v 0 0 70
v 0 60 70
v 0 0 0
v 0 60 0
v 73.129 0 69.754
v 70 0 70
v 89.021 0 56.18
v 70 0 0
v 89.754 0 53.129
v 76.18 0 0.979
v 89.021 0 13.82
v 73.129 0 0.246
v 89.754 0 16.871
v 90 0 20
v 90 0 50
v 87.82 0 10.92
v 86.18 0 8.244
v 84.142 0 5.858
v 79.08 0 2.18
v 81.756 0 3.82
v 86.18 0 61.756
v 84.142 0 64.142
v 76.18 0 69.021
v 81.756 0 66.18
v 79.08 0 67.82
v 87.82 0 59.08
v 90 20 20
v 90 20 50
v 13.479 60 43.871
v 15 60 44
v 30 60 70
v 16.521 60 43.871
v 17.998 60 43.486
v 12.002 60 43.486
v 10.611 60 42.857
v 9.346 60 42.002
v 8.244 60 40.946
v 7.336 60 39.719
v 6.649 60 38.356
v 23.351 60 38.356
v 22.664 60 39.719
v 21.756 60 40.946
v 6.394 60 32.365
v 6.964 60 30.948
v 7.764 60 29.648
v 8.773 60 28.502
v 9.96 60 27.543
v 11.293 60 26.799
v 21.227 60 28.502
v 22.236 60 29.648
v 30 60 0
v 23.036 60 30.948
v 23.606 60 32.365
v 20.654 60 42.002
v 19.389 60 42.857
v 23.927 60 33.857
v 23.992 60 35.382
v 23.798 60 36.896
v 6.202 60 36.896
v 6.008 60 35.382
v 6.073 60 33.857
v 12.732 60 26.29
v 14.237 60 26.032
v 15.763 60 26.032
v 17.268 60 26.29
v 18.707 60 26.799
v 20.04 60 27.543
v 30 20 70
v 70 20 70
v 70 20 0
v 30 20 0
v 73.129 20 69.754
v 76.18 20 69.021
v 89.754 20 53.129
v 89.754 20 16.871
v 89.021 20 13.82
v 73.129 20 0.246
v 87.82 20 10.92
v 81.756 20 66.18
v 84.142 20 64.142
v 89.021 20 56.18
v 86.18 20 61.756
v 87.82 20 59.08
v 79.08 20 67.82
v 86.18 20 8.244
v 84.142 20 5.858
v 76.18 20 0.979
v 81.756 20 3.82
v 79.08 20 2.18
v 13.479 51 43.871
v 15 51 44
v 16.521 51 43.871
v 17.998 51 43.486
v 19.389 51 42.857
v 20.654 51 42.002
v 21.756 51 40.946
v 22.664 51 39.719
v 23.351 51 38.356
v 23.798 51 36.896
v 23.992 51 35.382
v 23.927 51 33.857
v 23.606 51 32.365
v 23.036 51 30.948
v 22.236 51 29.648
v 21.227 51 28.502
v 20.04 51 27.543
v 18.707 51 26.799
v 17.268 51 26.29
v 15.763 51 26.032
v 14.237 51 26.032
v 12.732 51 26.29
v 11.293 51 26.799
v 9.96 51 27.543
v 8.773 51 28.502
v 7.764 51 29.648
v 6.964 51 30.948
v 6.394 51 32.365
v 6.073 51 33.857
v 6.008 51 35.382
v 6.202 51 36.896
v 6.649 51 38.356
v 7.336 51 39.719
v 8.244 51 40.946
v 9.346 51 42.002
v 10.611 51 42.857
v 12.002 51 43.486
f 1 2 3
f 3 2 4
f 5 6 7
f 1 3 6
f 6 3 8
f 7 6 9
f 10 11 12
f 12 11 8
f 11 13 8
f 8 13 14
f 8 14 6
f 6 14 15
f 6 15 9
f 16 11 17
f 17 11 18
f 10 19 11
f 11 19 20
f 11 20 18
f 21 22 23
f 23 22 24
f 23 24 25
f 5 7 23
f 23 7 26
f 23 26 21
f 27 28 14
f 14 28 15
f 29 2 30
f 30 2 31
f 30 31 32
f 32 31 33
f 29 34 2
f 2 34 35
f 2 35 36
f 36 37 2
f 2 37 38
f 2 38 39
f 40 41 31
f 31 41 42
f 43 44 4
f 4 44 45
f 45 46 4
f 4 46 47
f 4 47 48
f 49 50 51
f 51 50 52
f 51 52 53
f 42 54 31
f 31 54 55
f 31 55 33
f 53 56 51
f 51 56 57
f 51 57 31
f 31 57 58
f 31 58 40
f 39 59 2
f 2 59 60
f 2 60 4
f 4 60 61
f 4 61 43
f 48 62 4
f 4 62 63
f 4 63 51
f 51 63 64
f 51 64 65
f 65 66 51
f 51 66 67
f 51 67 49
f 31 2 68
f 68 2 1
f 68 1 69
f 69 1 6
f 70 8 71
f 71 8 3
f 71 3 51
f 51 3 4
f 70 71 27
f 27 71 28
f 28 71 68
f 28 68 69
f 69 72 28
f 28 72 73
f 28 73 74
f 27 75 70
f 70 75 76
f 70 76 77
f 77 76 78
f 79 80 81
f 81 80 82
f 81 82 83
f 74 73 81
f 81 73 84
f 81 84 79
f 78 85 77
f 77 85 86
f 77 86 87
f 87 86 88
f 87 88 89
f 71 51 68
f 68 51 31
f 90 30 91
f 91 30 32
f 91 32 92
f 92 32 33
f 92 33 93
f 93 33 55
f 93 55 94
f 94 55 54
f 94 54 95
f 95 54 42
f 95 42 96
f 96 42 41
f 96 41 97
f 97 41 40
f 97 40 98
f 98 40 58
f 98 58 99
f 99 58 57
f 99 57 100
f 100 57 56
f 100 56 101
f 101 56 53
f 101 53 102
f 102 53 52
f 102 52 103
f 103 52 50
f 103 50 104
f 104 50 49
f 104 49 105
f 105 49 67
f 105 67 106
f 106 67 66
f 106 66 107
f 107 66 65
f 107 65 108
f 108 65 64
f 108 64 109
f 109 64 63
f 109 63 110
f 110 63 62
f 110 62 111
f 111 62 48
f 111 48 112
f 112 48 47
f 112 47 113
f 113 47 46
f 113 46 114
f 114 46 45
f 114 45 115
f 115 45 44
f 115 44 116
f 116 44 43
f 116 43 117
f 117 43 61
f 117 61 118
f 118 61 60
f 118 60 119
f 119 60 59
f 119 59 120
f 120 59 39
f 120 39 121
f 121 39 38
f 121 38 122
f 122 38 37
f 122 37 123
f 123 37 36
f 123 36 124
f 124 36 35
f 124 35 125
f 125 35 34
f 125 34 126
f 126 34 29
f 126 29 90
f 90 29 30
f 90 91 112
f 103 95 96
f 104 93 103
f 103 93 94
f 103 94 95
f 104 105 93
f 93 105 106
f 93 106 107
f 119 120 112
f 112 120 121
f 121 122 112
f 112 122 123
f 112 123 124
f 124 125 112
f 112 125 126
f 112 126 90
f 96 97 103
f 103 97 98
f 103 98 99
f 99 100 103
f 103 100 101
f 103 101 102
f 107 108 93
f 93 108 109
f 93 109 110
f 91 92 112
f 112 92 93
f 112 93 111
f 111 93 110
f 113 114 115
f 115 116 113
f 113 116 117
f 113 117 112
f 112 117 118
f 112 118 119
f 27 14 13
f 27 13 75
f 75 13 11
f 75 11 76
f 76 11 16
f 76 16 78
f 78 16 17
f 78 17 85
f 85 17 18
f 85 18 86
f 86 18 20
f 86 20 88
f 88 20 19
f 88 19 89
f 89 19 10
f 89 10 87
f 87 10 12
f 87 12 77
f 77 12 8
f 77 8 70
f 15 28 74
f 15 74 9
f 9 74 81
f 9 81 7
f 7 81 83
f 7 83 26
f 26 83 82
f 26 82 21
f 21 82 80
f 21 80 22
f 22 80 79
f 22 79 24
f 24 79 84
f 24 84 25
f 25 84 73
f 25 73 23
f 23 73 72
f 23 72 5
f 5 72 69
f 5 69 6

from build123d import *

# Parameters (mm, degrees)
SKETCH_4_W          = 90
SKETCH_4_H          = 60
EXTRUDE_1_DEPTH     = 70
SKETCH_5_W          = 60
SKETCH_5_H          = 40
CUT_EXTRUDE_1_DEPTH = 70
SKETCH_6_R          = 9
CUT_EXTRUDE_2_DEPTH = 9
FILLET_1_R          = 20


with BuildPart() as part:
    # 스케치4 → 보스-돌출1 (new body)
    with BuildSketch(Plane.XY):
        with Locations((45, 30)):
            Rectangle(SKETCH_4_W, SKETCH_4_H)
    extrude(amount=EXTRUDE_1_DEPTH)

    # 스케치5 → 컷-돌출1 (cut)
    with BuildSketch(Plane.XY.offset(70)):
        with Locations((60, 40)):
            Rectangle(SKETCH_5_W, SKETCH_5_H)
    extrude(amount=-CUT_EXTRUDE_1_DEPTH, mode=Mode.SUBTRACT)

    # 스케치6 → 컷-돌출2 (cut)
    with BuildSketch(Plane(origin=(0, 60, 0), x_dir=(1, 0, 0), z_dir=(0, 1, 0))):
        with Locations((15, -35)):
            Circle(SKETCH_6_R)
    extrude(amount=-CUT_EXTRUDE_2_DEPTH, mode=Mode.SUBTRACT)

    # 필렛1
    fillet_1_edges = [part.edges().sort_by_distance(p)[0] for p in [
        (90, 10, 70),
        (90, 10, 0),
    ]]
    fillet(fillet_1_edges, radius=FILLET_1_R)


solid = part.part
